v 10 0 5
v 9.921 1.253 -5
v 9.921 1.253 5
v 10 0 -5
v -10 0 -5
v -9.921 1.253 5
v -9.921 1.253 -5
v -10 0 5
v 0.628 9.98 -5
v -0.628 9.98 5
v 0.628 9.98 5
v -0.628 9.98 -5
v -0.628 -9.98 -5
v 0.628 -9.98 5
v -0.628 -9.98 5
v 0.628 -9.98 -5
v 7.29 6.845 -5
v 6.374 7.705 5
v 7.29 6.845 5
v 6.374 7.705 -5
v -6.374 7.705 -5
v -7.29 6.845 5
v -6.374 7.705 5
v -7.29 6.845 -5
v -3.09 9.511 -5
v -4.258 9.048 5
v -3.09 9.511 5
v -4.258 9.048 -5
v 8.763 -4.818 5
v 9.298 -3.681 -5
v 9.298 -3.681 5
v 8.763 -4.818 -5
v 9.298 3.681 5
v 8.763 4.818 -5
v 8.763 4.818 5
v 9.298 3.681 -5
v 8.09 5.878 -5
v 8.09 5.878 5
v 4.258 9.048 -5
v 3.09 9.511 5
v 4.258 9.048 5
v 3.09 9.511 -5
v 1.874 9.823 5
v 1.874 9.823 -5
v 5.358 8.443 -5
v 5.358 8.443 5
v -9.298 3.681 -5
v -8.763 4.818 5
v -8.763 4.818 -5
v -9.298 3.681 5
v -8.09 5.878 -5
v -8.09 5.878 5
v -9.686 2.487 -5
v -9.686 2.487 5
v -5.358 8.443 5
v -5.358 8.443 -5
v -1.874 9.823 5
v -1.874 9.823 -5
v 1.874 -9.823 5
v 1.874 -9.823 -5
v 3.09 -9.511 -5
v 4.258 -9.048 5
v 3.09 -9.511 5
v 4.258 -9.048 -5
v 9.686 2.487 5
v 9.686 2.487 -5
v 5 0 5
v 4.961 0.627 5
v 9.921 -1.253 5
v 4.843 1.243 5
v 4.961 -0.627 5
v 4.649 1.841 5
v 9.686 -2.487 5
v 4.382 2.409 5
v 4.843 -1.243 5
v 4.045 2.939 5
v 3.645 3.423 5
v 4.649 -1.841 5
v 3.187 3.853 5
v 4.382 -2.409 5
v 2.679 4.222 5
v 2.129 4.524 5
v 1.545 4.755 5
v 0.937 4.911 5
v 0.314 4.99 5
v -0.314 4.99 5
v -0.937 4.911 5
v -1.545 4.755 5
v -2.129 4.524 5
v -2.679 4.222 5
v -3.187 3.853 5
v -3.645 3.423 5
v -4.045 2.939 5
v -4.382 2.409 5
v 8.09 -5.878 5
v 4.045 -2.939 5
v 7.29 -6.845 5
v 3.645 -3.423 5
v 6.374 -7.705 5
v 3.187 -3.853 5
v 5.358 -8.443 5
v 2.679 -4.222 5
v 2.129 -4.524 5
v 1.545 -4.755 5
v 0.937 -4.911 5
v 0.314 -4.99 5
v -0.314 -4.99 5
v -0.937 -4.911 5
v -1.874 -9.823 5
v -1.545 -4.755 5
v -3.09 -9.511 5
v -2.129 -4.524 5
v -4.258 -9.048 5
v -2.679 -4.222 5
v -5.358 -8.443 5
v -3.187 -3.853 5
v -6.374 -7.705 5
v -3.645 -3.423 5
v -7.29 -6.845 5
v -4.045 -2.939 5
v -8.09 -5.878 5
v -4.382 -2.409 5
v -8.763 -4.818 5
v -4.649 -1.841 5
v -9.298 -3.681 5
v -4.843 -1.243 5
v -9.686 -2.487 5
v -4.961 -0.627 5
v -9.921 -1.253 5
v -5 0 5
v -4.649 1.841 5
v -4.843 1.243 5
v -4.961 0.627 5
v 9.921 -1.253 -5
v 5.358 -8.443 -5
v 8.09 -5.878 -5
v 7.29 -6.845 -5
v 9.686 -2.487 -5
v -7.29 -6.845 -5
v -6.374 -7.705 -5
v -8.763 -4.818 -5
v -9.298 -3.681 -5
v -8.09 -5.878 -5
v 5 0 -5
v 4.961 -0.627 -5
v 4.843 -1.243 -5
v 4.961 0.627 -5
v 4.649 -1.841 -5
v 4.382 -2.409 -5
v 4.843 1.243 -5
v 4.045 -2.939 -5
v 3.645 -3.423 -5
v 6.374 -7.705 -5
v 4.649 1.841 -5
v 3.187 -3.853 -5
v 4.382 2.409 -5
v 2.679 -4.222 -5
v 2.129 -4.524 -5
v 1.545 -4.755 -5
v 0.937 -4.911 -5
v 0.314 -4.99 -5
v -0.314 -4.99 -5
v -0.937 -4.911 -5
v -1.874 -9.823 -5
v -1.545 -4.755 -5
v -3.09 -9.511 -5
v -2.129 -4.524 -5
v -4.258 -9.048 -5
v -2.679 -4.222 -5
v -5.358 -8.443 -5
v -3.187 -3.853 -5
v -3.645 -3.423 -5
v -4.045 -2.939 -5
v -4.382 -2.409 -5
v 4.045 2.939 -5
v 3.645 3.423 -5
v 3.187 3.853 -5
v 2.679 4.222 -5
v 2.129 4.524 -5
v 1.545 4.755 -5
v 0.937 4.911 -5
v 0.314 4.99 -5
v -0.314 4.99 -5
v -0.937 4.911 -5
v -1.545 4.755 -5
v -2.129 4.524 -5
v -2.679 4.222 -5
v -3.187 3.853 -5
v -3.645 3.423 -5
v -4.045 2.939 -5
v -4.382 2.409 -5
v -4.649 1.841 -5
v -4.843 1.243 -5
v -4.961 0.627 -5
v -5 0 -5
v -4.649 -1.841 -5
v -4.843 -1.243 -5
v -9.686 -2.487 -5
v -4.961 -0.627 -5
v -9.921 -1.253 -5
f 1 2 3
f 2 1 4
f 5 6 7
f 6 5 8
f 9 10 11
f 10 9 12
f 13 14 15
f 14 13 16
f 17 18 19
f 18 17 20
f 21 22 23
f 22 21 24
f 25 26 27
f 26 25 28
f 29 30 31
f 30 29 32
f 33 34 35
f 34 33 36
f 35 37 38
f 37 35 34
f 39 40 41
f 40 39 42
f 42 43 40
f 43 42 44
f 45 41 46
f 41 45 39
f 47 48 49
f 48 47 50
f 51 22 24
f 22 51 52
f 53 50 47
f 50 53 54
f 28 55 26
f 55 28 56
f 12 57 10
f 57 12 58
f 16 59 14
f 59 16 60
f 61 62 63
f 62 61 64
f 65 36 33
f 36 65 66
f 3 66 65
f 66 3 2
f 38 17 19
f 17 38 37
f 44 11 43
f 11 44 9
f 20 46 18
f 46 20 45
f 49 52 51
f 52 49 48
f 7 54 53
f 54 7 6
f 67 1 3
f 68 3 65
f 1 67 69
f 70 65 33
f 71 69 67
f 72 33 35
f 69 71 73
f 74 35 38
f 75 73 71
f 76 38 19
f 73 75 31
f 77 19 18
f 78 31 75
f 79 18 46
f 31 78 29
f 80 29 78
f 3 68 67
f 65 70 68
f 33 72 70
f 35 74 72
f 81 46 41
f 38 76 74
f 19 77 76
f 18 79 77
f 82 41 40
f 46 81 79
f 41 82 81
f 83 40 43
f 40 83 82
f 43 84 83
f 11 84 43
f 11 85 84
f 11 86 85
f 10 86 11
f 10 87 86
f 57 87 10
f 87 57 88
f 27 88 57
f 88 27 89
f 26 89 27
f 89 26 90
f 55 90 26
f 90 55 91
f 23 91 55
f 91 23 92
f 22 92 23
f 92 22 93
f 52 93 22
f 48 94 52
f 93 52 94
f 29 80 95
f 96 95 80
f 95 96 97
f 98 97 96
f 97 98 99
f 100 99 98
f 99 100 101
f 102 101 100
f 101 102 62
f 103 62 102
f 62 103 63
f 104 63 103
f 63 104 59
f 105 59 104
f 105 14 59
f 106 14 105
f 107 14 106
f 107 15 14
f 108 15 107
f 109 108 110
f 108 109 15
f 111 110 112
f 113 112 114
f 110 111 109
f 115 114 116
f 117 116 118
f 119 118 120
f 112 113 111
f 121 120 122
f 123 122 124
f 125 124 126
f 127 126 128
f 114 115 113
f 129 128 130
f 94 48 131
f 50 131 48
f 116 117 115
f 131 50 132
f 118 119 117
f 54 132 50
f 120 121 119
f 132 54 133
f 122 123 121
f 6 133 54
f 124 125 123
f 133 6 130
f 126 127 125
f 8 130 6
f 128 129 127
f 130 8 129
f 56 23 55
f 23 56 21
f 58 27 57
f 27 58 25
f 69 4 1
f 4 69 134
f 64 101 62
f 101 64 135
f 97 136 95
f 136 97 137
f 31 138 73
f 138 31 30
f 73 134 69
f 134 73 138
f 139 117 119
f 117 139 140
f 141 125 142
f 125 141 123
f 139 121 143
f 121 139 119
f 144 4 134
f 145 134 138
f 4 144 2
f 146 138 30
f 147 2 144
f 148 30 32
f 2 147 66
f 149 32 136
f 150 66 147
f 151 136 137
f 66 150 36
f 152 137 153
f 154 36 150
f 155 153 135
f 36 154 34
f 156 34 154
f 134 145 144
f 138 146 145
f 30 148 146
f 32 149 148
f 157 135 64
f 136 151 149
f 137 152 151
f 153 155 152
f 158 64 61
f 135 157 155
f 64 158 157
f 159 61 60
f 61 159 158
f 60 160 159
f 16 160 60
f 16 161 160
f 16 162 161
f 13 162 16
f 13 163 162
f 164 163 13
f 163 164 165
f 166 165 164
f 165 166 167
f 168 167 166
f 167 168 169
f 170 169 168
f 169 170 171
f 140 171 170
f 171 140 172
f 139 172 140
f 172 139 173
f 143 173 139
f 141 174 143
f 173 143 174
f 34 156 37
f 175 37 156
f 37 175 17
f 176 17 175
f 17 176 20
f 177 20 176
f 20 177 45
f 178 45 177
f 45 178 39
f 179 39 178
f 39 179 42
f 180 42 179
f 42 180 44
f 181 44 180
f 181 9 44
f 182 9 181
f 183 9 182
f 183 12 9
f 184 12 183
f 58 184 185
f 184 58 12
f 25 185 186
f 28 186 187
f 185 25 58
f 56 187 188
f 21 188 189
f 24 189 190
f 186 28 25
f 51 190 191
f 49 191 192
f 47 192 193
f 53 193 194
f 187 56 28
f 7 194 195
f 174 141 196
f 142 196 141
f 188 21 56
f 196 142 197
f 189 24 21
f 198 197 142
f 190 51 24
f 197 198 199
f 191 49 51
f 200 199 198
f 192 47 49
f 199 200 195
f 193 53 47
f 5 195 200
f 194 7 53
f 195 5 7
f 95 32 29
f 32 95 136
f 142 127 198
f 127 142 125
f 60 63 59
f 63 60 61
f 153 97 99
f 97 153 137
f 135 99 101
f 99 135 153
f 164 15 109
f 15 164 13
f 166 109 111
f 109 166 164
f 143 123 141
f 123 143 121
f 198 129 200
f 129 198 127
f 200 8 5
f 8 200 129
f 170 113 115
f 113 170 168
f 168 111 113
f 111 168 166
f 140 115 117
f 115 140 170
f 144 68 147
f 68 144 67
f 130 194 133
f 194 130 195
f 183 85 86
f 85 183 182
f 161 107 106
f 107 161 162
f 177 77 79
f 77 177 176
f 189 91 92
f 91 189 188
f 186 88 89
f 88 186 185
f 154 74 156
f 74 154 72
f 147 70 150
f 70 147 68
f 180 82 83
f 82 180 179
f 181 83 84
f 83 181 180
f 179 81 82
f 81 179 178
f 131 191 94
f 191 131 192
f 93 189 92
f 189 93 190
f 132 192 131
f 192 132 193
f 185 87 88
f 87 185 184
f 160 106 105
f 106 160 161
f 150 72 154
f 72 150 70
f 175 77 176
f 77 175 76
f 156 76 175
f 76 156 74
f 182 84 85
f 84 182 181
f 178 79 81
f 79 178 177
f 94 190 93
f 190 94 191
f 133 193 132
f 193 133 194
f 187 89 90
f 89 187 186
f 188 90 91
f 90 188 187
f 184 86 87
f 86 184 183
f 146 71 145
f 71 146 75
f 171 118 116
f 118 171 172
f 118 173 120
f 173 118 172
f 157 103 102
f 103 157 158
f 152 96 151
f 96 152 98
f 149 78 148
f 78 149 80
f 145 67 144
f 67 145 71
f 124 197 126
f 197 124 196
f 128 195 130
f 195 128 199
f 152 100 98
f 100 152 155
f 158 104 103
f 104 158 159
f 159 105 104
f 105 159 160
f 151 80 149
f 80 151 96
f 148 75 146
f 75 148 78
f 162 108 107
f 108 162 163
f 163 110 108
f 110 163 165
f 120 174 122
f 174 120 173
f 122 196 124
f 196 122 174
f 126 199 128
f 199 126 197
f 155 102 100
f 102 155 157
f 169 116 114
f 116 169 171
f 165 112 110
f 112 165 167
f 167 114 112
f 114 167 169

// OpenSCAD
$fn = 50;


difference() {
	union() {
		translate(v = [0, 0, -5.0000000000]) {
			cylinder(h = 10, r = 10.0000000000);
		}
	}
	union() {
		translate(v = [0, 0, -100.0000000000]) {
			cylinder(h = 200, r = 5.0000000000);
		}
	}
}
